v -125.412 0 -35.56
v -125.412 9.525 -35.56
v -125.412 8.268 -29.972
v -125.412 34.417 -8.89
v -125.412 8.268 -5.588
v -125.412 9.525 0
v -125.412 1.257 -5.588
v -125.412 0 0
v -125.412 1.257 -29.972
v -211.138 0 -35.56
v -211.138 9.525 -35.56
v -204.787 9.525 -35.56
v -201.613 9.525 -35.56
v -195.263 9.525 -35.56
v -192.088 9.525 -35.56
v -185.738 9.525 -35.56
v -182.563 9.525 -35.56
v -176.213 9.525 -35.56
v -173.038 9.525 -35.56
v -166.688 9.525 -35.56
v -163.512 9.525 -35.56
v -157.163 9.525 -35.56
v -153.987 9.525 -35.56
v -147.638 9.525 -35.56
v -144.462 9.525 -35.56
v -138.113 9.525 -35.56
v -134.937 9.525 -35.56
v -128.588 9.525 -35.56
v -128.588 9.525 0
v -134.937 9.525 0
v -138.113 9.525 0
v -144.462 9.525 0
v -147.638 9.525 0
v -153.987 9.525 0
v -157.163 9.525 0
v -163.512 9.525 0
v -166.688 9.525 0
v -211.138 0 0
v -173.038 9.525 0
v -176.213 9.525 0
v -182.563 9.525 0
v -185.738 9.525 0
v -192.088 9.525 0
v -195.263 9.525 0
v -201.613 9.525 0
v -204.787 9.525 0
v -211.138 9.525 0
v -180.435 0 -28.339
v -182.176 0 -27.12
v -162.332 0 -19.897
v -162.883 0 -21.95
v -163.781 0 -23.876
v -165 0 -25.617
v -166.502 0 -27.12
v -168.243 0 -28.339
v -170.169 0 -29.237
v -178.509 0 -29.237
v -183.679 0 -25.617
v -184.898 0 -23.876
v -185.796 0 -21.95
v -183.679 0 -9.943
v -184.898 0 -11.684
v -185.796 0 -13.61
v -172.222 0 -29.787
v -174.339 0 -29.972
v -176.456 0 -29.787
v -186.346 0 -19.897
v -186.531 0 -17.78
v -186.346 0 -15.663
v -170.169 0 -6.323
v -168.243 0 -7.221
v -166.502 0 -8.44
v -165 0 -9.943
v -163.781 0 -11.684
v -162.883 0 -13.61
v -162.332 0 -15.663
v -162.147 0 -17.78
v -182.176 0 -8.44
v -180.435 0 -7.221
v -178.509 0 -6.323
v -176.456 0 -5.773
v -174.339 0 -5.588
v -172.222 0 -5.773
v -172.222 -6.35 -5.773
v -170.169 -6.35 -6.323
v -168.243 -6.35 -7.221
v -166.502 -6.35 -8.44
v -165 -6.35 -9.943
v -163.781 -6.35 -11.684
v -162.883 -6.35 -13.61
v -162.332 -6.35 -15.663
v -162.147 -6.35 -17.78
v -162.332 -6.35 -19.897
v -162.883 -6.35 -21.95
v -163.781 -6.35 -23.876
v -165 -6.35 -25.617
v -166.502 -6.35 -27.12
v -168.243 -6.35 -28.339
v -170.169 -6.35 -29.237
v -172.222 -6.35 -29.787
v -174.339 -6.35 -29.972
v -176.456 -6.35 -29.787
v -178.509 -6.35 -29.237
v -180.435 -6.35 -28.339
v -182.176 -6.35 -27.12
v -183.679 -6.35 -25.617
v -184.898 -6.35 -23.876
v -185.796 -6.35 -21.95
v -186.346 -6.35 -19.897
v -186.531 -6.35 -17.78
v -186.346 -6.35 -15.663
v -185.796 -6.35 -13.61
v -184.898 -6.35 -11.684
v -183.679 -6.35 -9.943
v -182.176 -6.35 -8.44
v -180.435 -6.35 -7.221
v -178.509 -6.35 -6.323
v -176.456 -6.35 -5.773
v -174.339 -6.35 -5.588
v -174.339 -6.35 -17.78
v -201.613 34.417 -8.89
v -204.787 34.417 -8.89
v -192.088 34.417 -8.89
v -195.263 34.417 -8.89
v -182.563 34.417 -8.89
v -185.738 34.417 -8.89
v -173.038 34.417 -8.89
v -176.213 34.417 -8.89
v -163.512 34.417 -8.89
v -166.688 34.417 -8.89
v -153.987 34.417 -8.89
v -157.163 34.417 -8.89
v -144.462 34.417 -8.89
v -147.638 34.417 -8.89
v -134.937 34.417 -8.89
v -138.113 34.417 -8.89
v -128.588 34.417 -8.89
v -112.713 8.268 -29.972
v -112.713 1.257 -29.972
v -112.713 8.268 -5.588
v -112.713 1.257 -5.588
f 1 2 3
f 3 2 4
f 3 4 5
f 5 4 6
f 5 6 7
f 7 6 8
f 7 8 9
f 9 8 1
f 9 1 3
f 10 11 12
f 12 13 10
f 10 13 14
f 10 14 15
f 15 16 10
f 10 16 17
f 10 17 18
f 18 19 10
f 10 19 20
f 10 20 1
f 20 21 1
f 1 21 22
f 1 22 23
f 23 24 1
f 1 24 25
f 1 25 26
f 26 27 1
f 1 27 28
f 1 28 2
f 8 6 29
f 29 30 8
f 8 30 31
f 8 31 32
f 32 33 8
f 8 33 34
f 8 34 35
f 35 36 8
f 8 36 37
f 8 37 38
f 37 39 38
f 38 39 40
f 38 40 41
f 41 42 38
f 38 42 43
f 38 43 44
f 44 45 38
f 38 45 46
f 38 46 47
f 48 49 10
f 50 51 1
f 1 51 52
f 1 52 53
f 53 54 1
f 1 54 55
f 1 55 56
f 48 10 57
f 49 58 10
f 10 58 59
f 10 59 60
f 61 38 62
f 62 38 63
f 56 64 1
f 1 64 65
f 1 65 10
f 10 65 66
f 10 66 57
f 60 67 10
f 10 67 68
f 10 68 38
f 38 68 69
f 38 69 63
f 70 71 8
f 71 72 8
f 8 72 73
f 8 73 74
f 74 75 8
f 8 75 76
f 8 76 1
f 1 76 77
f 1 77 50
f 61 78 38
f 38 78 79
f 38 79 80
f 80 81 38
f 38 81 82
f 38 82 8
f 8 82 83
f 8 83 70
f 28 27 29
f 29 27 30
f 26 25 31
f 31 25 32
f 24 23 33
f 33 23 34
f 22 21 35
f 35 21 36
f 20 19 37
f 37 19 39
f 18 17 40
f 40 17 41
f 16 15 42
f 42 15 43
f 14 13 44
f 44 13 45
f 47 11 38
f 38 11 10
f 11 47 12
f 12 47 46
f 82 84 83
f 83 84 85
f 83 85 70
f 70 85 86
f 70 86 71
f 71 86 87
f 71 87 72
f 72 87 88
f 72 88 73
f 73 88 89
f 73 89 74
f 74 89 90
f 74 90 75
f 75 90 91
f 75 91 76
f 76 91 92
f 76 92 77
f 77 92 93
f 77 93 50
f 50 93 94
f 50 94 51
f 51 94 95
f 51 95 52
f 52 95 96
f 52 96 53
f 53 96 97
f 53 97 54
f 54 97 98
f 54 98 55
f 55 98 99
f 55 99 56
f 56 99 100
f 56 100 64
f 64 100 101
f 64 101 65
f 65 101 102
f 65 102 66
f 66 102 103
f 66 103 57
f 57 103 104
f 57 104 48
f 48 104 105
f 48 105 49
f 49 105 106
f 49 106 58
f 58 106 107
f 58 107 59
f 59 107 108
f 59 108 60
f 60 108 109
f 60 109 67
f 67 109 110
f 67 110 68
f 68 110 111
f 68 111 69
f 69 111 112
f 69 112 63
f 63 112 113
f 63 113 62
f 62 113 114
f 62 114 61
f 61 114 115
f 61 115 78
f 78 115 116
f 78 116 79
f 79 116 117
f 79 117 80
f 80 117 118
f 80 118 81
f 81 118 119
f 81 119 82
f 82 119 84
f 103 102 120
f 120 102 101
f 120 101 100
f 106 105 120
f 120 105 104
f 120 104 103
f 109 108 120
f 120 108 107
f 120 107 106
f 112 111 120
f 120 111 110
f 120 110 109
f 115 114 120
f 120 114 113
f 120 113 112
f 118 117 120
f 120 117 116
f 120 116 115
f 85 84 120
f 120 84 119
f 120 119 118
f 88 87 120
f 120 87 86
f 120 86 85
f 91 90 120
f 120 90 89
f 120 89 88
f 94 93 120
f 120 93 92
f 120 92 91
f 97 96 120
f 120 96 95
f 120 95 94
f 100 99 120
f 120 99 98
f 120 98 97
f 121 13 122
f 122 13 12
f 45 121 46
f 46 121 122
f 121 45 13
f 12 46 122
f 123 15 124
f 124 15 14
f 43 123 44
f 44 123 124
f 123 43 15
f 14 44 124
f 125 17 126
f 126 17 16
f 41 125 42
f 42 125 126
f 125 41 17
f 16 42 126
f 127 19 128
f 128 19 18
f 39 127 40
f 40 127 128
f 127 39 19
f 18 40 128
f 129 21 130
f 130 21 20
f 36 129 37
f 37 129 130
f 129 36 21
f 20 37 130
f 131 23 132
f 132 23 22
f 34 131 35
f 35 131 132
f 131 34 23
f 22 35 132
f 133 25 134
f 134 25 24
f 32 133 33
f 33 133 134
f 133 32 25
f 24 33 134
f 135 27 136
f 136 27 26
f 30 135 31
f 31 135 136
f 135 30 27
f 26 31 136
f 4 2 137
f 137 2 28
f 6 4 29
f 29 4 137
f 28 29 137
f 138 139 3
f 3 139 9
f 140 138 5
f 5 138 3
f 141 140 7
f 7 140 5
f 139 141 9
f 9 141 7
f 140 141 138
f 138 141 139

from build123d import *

# Parameters (mm, degrees)
SKETCH1_W           = 211.1375
SKETCH1_H           = 35.56
BOSS_EXTRUDE1_DEPTH = 9.525
SKETCH6_R           = 12.192
BOSS_EXTRUDE4_DEPTH = 6.35
BOSS_EXTRUDE5_DEPTH = 3.175
LPATTERN1_COUNT     = 22
LPATTERN1_PITCH     = 9.525
SKETCH10_W          = 59.980257814
SKETCH10_H          = 67.271975432
CUT_EXTRUDE1_DEPTH  = 125.4125
SKETCH11_W          = 24.384
SKETCH11_H          = 7.0104
BOSS_EXTRUDE6_DEPTH = 12.7


with BuildPart() as part:
    # Sketch1 → Boss-Extrude1 (new body)
    with BuildSketch(Plane(origin=(0, 0, 0), x_dir=(1, 0, 0), z_dir=(0, 1, 0))):
        with Locations((-105.56875, 17.78)):
            Rectangle(SKETCH1_W, SKETCH1_H)
    extrude(amount=BOSS_EXTRUDE1_DEPTH)

    # Sketch6 → Boss-Extrude4 (add)
    with BuildSketch(Plane(origin=(0, 0, 0), x_dir=(-1, 0, 0), z_dir=(0, -1, 0))):
        with Locations((105.56875, 17.78)):
            Circle(SKETCH6_R)
        with Locations((36.79825, 17.78)):
            Circle(SKETCH6_R)
        with Locations((174.33925, 17.78)):
            Circle(SKETCH6_R)
    extrude(amount=BOSS_EXTRUDE4_DEPTH)

    # Sketch9 → Boss-Extrude5 (add)
    with BuildSketch(Plane.ZY.offset(204.7875)):
        Polygon((-35.56, 9.525), (0, 9.525), (-8.89, 34.417), align=None)
    boss_extrude5 = extrude(amount=-BOSS_EXTRUDE5_DEPTH)

    # LPattern1: Boss-Extrude5 ×22
    with Locations(*[(i * LPATTERN1_PITCH, 0, 0) for i in range(1, LPATTERN1_COUNT)]):
        add(boss_extrude5)

    # Sketch10 → Cut-Extrude1 (cut)
    with BuildSketch(Plane(origin=(0, 0, 0), x_dir=(0, 0, -1), z_dir=(1, 0, 0))):
        with Locations((17.78, 4.683648782)):
            Rectangle(SKETCH10_W, SKETCH10_H)
    extrude(amount=-CUT_EXTRUDE1_DEPTH, mode=Mode.SUBTRACT)

    # Sketch11 → Boss-Extrude6 (add)
    with BuildSketch(Plane(origin=(-125.4125, 0, 0), x_dir=(0, 0, -1), z_dir=(1, 0, 0))):
        with Locations((17.78, 4.7625)):
            Rectangle(SKETCH11_W, SKETCH11_H)
    extrude(amount=BOSS_EXTRUDE6_DEPTH)


solid = part.part
